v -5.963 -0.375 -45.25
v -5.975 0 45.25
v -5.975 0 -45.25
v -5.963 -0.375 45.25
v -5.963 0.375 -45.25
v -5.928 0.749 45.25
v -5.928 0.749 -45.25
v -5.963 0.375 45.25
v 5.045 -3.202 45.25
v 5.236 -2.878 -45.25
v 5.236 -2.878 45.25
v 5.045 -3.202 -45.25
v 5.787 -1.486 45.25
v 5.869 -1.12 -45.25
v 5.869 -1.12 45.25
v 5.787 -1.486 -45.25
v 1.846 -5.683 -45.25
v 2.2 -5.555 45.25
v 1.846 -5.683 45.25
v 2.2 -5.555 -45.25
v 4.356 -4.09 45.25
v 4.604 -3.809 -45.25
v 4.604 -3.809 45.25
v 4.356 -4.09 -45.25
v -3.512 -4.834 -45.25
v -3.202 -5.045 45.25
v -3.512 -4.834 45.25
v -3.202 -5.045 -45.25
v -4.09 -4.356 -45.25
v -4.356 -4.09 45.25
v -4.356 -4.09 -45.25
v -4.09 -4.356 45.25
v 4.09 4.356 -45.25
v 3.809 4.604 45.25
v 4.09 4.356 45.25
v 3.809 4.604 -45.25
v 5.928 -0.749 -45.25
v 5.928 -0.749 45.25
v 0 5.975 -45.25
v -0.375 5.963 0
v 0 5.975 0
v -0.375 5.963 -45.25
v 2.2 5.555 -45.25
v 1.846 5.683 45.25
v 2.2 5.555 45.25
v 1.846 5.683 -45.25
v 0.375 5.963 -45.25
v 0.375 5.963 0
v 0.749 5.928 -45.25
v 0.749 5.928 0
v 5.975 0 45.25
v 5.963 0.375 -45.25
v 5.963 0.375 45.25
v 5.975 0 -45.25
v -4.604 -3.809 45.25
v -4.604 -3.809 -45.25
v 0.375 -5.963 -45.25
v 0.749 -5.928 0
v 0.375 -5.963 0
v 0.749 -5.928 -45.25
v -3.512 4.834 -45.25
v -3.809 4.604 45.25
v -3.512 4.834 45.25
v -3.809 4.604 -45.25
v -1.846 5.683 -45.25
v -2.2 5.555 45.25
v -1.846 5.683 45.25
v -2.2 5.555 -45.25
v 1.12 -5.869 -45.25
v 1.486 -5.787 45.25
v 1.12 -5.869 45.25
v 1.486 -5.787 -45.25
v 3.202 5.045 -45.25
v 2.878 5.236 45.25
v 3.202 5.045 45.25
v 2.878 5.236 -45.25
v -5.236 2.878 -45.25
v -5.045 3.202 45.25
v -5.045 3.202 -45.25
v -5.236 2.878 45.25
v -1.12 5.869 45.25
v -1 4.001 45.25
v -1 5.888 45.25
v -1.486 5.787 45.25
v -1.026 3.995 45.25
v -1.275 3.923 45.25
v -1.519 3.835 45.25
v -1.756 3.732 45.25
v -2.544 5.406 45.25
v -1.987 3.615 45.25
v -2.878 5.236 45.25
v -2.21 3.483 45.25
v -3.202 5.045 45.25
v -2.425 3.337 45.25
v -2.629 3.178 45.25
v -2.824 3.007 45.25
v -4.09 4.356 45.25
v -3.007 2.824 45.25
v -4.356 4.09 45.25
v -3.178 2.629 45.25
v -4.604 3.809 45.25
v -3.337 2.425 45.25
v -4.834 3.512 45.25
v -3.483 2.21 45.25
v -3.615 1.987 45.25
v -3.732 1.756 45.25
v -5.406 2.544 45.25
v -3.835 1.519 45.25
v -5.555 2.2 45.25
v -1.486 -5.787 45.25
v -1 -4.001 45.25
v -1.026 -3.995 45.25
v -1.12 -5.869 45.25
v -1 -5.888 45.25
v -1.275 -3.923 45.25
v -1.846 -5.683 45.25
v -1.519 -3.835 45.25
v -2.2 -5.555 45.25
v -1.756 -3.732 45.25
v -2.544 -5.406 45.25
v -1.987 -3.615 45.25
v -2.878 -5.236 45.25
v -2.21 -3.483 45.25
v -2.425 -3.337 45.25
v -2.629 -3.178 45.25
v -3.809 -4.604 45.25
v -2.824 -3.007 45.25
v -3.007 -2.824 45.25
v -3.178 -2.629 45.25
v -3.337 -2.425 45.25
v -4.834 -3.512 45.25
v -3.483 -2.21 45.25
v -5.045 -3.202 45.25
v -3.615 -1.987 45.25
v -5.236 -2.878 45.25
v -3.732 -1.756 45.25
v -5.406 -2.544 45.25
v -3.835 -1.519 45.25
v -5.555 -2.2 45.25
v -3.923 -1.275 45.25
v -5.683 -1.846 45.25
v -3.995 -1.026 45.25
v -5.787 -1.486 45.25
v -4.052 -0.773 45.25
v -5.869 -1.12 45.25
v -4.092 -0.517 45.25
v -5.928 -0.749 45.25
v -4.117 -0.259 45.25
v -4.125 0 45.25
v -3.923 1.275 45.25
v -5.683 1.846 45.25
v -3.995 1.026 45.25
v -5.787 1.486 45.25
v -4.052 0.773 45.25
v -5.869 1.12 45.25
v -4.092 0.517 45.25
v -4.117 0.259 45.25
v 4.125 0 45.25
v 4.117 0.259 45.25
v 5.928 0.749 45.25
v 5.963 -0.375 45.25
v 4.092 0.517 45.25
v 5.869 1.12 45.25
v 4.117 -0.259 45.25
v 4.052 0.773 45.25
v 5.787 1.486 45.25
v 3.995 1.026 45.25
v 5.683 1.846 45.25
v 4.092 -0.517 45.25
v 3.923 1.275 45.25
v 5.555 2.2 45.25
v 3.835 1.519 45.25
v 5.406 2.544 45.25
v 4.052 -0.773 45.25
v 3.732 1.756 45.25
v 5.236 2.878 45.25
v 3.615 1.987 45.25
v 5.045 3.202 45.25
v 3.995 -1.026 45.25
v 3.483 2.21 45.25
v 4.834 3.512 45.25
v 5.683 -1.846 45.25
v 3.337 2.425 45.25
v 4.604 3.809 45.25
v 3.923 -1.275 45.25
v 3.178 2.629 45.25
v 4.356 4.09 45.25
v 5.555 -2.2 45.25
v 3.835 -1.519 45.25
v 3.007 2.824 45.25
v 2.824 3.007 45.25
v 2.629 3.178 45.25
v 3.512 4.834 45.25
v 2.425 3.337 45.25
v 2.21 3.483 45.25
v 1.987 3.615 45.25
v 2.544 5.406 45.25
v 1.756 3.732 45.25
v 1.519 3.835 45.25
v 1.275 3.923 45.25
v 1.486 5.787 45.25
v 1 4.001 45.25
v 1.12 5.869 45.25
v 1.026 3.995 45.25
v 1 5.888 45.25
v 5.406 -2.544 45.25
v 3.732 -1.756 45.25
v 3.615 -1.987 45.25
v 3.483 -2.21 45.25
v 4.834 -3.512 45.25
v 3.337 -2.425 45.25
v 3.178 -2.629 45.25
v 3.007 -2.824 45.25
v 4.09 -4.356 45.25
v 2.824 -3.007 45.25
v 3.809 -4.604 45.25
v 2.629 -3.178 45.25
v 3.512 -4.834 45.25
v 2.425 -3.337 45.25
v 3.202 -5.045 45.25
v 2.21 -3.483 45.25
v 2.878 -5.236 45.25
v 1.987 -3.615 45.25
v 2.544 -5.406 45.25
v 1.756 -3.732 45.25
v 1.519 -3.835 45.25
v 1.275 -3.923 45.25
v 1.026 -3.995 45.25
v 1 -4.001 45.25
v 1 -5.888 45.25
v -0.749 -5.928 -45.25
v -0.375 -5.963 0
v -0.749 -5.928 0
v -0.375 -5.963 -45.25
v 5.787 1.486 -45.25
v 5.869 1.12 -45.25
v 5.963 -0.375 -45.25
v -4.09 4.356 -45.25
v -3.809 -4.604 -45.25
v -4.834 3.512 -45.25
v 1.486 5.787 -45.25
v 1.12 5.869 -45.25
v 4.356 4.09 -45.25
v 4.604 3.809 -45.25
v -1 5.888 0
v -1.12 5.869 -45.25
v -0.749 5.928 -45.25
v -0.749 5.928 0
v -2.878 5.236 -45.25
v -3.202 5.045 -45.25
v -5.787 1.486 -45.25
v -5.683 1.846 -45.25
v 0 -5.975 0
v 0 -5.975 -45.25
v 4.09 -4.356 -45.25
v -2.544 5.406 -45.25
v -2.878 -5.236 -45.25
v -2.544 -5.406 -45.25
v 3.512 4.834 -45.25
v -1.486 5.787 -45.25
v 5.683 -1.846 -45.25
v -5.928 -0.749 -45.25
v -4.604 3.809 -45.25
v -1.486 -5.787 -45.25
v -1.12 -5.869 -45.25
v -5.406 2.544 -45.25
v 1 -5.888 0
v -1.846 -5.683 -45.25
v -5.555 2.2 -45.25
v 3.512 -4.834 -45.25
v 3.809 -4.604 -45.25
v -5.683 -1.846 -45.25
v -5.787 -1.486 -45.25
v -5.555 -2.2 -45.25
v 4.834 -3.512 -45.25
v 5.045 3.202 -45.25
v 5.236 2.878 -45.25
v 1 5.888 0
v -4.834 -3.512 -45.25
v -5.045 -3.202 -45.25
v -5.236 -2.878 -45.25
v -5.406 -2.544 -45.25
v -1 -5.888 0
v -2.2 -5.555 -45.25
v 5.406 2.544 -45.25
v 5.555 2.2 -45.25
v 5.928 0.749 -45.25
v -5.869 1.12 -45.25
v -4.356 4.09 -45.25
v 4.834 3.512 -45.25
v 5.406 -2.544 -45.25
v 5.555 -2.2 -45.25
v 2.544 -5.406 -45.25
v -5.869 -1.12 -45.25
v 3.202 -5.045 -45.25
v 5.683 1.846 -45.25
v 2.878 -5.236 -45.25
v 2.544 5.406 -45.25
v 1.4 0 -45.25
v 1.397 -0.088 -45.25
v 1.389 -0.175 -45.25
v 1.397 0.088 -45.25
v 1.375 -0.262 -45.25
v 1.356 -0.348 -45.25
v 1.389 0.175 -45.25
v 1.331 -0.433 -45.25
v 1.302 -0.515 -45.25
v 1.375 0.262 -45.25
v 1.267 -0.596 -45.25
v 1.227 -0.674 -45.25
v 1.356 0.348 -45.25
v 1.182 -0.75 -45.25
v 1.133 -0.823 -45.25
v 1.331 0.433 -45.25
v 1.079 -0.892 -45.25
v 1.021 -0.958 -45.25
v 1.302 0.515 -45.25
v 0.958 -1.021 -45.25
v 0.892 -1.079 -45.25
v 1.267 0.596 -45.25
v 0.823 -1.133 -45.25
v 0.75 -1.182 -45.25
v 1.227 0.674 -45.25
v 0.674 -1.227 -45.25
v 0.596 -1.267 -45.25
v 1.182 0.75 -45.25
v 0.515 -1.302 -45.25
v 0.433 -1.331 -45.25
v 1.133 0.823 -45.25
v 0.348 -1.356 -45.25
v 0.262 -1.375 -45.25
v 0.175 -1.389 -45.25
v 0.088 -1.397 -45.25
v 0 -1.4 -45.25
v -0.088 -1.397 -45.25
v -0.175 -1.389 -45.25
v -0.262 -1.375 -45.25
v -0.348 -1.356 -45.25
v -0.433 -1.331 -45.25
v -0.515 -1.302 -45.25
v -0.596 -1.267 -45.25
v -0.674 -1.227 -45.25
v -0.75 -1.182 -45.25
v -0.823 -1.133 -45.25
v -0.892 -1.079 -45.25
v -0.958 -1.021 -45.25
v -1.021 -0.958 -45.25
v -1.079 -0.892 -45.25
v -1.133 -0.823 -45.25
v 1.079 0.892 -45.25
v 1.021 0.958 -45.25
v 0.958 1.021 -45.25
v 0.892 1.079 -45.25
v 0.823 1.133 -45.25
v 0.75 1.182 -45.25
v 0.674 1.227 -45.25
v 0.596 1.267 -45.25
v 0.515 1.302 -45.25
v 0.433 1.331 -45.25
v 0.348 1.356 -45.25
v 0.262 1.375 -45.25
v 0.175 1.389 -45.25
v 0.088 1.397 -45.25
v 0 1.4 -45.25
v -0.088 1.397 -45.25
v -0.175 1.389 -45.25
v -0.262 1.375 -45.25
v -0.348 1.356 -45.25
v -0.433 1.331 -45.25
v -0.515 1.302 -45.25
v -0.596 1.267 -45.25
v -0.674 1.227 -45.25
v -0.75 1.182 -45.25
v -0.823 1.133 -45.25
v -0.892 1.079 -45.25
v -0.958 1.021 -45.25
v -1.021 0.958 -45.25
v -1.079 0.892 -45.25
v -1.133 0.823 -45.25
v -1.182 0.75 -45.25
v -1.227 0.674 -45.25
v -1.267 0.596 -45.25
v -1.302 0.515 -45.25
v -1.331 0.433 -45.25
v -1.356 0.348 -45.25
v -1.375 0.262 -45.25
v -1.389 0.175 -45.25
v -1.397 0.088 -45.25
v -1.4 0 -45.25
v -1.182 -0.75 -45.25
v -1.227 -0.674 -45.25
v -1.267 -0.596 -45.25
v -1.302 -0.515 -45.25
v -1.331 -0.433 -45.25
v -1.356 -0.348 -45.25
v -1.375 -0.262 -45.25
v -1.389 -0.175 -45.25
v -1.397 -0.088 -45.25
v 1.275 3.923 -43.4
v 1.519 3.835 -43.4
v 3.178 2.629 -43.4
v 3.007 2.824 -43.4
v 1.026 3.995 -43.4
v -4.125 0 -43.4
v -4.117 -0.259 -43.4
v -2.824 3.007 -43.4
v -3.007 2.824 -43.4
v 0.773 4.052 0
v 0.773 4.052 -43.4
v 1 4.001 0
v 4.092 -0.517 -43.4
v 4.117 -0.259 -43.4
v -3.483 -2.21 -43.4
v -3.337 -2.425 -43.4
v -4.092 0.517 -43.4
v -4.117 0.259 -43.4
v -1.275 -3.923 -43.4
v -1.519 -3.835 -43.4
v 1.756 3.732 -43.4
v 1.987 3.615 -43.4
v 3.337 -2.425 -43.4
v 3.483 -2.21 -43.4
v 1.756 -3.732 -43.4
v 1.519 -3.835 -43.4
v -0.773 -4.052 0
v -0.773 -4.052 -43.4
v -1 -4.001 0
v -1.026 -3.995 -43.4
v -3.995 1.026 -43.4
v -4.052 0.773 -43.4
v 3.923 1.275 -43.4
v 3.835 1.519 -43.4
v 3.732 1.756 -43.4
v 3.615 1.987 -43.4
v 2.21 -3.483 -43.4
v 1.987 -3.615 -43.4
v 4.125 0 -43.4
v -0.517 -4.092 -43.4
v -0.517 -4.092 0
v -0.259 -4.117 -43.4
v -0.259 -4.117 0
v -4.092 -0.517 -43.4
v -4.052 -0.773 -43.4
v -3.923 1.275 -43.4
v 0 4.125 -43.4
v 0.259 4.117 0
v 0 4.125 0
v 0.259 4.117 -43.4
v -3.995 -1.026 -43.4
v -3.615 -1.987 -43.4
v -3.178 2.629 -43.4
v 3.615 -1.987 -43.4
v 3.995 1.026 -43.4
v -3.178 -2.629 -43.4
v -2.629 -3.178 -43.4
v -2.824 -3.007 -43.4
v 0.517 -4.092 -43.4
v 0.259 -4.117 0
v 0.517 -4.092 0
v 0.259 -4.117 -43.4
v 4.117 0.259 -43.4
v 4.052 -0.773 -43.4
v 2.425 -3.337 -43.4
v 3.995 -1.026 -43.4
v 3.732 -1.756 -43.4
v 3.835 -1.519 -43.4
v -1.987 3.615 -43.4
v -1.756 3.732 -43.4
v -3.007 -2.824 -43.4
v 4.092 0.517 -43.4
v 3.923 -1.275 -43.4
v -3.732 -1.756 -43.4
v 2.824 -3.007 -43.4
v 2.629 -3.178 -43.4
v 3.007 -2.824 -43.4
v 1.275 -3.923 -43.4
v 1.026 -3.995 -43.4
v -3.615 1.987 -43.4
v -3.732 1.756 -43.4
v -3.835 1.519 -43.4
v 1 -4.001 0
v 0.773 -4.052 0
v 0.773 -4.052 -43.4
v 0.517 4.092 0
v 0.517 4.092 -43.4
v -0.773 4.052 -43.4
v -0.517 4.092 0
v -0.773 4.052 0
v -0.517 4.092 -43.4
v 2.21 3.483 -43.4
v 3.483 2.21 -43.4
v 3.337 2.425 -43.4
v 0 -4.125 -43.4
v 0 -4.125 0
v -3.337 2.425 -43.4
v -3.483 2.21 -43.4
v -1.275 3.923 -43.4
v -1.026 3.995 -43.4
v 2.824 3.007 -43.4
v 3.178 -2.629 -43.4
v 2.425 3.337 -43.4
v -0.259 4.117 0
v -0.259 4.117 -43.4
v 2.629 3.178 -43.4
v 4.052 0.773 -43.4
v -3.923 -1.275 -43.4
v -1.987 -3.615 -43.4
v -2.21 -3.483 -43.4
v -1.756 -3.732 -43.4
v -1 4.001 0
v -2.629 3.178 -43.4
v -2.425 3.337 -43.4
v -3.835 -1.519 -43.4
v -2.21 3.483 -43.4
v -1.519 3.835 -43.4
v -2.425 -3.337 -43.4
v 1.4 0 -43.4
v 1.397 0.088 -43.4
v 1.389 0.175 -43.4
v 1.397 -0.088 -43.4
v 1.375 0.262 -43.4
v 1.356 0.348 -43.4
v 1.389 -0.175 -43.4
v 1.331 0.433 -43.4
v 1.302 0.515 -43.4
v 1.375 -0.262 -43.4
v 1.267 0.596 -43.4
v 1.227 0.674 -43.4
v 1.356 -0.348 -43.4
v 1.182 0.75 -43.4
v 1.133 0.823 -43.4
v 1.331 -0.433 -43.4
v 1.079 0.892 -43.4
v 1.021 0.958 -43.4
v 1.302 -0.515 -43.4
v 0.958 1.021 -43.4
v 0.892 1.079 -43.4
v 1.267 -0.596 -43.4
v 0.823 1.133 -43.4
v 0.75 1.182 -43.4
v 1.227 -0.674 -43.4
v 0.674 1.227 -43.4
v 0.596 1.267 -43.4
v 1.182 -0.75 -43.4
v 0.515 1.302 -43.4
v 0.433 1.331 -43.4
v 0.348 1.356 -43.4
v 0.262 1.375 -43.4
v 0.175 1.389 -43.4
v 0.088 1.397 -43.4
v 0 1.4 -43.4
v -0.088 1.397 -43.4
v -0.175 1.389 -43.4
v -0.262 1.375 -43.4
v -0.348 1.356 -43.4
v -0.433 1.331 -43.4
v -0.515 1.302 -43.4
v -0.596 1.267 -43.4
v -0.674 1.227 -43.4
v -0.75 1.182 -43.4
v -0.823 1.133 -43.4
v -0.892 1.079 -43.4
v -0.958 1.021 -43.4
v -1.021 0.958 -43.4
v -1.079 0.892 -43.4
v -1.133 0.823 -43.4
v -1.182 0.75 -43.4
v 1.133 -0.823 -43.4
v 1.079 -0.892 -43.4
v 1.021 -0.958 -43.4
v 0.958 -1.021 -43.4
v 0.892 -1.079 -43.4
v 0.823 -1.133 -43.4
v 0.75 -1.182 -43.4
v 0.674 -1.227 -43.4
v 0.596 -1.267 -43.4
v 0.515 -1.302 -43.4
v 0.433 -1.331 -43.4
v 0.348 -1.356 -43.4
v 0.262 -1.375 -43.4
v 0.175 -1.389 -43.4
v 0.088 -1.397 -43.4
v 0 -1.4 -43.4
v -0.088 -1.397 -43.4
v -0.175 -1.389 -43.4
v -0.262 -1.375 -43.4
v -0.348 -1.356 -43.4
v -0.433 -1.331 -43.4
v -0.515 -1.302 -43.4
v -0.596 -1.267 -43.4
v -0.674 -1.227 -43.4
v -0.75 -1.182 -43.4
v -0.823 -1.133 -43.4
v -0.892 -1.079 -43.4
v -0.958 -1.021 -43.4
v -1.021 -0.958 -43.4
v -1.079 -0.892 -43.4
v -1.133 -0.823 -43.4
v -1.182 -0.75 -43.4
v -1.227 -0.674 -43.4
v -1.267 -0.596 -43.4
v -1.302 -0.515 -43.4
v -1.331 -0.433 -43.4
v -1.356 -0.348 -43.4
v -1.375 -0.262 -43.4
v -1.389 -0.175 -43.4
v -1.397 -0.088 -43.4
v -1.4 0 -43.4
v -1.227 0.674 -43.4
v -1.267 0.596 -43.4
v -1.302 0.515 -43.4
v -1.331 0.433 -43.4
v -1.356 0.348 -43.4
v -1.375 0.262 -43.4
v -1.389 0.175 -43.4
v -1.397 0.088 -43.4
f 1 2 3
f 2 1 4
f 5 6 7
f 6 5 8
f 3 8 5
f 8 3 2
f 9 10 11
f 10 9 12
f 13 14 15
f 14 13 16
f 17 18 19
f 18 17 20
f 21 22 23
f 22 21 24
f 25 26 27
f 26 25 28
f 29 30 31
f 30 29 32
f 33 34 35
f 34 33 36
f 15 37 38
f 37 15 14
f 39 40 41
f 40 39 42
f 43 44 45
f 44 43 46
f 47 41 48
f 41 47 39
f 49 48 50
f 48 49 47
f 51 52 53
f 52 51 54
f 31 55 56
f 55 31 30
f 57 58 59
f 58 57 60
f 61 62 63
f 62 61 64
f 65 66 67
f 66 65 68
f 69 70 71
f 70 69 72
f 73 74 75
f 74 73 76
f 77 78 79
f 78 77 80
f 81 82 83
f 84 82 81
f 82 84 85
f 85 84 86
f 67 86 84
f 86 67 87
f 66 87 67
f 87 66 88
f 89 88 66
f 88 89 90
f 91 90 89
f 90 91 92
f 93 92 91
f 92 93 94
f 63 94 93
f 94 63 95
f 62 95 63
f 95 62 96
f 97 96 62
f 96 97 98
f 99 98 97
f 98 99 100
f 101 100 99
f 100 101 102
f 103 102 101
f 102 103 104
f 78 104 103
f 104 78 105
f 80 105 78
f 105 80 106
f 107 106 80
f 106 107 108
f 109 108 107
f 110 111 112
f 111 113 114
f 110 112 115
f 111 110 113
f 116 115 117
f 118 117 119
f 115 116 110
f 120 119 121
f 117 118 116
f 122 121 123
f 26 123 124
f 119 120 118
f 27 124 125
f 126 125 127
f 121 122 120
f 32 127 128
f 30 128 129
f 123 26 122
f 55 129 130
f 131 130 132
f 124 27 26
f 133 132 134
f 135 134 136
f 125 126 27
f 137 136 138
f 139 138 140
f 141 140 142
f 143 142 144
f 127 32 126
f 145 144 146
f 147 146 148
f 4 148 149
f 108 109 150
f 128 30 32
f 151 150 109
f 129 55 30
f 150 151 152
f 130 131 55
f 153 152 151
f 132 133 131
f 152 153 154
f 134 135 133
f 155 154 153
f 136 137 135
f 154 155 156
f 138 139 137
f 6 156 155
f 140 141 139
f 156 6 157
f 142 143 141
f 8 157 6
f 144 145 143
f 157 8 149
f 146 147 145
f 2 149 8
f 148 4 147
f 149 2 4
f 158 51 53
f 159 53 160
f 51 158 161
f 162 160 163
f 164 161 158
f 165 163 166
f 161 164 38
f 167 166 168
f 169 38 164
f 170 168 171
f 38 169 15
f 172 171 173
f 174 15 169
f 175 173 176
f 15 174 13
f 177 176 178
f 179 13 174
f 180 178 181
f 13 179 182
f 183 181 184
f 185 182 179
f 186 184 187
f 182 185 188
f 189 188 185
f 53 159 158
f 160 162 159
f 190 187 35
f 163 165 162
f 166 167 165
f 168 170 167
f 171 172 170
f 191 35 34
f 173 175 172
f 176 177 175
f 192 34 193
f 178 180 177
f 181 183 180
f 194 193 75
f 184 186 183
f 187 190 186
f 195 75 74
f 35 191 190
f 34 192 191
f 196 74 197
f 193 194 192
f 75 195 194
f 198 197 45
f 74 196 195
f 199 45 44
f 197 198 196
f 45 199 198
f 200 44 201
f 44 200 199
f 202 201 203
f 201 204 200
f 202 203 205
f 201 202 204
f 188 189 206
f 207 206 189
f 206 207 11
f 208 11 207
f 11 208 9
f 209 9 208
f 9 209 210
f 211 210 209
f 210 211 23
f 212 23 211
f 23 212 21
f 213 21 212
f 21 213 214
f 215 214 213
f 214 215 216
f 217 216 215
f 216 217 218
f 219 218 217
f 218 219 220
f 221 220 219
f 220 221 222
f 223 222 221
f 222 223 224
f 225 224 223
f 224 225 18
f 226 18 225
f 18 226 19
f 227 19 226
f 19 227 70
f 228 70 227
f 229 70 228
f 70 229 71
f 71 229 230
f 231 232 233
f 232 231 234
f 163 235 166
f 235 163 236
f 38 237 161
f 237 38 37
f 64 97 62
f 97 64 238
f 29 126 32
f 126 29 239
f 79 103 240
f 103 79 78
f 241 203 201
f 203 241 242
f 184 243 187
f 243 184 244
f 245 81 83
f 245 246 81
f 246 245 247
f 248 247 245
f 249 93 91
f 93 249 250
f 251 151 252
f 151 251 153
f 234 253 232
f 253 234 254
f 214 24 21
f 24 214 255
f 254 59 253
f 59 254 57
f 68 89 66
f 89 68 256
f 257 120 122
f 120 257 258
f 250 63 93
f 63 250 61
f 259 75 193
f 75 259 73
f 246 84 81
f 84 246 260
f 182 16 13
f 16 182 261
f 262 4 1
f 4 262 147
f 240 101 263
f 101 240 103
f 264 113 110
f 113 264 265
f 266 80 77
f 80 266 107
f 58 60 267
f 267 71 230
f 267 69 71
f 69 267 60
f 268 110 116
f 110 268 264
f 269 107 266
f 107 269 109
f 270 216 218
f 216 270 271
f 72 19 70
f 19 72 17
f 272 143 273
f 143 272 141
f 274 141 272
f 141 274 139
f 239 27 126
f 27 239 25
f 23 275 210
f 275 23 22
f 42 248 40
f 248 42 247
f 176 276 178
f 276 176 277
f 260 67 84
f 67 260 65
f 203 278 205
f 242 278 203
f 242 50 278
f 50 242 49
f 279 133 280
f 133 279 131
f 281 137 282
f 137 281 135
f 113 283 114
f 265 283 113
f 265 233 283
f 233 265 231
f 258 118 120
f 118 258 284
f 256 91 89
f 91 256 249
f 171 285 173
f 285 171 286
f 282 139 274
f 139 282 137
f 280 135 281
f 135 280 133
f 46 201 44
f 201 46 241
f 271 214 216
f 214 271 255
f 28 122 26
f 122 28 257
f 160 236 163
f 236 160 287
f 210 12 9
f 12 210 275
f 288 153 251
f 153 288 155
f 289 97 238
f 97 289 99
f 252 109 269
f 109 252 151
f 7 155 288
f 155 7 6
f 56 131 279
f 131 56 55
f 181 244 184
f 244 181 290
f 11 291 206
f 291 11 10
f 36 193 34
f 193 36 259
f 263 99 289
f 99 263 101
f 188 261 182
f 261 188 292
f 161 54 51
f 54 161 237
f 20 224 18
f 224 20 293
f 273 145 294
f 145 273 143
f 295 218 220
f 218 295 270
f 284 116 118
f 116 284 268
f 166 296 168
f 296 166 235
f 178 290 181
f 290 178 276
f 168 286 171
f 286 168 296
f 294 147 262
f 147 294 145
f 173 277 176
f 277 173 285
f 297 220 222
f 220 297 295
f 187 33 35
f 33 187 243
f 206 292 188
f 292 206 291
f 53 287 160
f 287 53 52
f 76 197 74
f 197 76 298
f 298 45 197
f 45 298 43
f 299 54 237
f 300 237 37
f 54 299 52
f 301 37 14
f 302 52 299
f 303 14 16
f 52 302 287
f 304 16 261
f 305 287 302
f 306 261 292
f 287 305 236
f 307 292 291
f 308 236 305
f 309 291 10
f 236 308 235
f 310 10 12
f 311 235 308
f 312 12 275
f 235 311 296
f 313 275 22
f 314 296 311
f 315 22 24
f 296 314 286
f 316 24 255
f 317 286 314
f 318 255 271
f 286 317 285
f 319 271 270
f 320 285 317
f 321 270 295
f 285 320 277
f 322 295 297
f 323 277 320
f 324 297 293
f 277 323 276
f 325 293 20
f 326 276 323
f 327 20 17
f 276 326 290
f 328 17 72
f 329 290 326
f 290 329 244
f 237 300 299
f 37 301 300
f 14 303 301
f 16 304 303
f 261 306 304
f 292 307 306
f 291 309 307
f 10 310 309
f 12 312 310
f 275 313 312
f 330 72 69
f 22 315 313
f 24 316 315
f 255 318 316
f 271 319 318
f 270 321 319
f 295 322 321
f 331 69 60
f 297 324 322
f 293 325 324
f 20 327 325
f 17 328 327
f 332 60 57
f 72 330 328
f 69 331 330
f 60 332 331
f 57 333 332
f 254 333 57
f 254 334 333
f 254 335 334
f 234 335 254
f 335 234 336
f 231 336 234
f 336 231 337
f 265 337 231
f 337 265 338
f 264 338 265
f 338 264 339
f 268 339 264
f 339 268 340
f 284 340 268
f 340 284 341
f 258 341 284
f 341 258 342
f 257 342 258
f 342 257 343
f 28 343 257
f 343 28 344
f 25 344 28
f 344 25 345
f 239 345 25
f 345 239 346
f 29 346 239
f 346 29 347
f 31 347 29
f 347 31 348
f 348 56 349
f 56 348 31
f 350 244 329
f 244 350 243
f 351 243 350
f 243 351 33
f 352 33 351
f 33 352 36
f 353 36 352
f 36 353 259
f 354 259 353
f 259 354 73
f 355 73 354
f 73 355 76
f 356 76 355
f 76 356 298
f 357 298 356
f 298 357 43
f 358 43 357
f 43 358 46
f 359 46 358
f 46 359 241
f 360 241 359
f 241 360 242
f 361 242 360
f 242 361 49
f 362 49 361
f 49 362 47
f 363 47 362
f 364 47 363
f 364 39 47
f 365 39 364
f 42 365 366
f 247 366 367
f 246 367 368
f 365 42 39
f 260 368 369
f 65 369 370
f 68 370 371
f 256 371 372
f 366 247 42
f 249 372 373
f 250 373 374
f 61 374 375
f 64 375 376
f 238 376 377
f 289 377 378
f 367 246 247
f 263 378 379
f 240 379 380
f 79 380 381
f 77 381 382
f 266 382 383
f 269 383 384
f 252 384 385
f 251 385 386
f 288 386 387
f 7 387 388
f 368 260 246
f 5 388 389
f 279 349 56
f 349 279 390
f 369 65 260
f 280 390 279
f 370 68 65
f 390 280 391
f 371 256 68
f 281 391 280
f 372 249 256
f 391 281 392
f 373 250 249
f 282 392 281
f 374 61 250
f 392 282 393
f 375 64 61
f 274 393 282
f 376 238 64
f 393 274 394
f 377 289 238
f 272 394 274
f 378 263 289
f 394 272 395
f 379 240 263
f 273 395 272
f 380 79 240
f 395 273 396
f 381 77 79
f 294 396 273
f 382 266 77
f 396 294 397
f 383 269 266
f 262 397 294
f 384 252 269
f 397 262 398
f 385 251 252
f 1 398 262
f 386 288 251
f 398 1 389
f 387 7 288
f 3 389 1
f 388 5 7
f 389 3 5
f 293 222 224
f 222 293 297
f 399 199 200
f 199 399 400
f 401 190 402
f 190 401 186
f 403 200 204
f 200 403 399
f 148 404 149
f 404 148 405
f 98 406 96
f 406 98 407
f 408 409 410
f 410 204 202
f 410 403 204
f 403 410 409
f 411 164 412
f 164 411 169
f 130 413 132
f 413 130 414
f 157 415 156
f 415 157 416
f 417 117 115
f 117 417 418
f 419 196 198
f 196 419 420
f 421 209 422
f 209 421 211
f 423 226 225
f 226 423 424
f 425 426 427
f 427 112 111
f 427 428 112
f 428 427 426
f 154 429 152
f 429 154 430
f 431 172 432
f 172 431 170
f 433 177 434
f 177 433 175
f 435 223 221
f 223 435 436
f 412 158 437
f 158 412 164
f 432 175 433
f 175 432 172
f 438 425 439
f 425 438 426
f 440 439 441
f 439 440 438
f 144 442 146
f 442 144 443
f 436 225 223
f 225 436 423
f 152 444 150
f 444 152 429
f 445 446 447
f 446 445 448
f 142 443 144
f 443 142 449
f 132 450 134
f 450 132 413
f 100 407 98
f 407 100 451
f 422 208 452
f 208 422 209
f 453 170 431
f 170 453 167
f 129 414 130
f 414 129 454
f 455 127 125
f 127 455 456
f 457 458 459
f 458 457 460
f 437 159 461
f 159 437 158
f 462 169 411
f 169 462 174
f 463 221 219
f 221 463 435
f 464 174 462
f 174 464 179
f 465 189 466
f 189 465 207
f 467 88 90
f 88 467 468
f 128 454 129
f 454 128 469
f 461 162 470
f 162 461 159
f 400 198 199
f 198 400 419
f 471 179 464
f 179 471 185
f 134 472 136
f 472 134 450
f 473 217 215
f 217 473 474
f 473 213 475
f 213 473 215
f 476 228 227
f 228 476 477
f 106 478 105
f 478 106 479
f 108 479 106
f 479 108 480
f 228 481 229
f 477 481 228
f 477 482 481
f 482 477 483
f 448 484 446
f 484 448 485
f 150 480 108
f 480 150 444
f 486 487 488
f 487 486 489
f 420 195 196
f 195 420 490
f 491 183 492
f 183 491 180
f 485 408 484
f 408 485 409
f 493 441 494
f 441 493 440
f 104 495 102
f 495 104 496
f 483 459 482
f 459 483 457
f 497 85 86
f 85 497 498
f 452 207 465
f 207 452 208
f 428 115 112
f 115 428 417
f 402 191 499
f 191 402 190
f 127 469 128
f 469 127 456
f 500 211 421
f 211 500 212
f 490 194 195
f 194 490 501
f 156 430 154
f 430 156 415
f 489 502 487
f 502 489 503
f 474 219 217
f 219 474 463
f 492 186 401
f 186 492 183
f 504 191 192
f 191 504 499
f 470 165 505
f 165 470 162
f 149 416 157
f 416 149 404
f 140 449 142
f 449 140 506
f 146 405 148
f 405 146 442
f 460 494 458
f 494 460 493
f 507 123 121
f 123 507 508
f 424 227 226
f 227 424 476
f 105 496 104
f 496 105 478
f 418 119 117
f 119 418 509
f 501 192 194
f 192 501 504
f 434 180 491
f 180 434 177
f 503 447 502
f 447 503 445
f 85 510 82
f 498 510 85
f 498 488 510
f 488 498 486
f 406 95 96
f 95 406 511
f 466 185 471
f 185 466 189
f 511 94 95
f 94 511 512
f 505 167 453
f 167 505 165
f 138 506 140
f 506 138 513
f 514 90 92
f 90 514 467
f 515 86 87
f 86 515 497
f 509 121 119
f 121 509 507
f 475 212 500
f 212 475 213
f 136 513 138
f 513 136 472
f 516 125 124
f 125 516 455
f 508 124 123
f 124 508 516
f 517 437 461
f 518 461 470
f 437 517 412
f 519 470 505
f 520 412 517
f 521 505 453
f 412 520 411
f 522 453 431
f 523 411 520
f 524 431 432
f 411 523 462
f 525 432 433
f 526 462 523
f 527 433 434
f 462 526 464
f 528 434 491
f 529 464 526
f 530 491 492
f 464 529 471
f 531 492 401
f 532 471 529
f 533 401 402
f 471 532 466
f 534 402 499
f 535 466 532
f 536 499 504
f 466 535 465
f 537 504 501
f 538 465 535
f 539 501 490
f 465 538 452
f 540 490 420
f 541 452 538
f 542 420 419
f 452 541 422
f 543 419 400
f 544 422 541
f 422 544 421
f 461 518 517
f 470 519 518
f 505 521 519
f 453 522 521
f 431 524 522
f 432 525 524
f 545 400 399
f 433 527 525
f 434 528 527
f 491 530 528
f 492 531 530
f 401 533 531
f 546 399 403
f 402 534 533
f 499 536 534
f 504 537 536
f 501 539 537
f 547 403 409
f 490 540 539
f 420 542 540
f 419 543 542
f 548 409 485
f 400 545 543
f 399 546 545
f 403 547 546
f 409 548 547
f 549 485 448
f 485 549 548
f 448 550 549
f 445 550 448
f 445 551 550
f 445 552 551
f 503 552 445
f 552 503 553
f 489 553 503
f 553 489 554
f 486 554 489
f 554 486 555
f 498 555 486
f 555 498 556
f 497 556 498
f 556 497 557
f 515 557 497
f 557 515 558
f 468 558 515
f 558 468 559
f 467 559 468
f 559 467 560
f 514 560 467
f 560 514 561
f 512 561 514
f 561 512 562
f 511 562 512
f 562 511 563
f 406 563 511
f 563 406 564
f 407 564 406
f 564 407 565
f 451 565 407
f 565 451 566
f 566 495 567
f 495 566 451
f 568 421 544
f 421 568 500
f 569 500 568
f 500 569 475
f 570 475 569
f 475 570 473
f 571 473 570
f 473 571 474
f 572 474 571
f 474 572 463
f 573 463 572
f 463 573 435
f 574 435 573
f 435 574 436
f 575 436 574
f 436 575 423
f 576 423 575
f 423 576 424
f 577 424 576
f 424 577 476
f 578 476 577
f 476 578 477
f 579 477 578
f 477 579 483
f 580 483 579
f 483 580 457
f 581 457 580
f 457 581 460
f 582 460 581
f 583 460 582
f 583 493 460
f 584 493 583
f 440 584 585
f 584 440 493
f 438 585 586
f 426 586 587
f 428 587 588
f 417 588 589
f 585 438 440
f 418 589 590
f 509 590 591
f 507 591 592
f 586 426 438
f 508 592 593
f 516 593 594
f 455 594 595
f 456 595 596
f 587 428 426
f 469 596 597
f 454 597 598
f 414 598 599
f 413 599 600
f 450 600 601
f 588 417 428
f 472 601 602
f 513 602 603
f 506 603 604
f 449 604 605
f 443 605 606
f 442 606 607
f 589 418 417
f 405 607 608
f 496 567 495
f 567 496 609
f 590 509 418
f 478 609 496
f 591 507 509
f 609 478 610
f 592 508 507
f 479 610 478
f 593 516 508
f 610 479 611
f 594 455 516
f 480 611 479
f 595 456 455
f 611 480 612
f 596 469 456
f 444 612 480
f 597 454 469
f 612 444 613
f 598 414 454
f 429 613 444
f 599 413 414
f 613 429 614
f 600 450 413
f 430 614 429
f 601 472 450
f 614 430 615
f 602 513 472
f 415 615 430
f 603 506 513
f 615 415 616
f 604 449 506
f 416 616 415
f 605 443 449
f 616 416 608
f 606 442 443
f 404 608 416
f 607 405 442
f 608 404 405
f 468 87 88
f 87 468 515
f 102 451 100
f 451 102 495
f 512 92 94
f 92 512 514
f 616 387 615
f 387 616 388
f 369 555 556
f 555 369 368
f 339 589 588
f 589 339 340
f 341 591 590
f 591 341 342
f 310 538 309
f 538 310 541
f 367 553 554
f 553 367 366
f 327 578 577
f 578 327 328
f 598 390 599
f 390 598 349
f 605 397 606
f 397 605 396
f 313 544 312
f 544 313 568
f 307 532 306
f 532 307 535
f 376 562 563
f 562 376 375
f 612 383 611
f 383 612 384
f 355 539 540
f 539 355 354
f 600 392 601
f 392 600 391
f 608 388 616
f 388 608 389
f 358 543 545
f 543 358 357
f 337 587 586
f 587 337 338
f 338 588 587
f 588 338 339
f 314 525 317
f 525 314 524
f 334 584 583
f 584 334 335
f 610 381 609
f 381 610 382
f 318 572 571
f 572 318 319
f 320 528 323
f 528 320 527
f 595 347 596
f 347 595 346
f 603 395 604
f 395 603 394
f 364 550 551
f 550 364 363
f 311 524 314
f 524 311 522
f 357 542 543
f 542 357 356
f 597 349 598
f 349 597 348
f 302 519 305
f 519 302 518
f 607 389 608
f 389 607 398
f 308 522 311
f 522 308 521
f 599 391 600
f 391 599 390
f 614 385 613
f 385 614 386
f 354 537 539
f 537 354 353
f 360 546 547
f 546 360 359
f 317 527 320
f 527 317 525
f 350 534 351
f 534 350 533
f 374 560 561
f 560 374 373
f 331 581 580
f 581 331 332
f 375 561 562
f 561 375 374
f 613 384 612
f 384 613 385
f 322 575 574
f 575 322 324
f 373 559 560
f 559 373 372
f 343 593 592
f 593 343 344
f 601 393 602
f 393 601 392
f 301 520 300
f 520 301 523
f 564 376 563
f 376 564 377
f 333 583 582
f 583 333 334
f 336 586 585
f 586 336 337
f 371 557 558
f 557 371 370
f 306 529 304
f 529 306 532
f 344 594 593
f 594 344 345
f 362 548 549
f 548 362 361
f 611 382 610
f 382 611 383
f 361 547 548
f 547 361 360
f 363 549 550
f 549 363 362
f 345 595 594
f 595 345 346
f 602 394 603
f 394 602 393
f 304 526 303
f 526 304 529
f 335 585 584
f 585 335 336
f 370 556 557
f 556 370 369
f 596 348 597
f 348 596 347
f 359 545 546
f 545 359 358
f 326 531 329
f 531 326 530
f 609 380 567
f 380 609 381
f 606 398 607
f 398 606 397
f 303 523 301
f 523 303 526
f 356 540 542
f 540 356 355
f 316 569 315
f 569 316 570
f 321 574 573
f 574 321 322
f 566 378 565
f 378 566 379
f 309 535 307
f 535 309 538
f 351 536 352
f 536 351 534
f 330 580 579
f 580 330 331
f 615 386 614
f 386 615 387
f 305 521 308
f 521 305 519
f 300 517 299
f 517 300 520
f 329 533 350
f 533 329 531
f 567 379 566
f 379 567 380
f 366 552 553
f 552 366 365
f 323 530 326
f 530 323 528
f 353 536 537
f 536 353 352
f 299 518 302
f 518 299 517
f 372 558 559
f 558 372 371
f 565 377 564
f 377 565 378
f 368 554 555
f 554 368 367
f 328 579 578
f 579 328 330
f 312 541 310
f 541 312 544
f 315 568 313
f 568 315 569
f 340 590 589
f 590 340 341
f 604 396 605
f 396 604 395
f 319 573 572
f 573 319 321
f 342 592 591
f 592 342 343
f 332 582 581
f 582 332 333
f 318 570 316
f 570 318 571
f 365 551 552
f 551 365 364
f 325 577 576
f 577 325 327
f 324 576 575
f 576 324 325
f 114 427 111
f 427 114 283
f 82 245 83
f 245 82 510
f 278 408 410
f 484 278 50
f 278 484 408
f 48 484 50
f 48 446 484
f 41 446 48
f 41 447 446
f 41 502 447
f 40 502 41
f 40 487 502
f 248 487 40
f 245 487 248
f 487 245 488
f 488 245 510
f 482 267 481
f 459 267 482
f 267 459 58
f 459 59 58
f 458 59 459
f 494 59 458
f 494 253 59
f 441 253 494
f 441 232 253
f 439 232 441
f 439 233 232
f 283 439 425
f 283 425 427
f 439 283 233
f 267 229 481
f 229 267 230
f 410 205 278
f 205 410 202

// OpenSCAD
// file: ../../../shared_helper.scad
// Shared Helper variables and modules

// Variables
quality_value = 100;
$fn = quality_value;

// Screw Holes
m2_hole_diameter = 1.85; // 1.95;
m2_loose_diameter = 2.50;
m2_counter_sink_diameter = 3.80;
m2_counter_sink_length = 2.00;
m2_hole_offset = m2_hole_diameter / 2.0;
m2_hole_height = 100.00;
m2_nut_outer_width = 3.90;
m2_nut_outer_height = 4.40;
m2_nut_outer_depth = 1.50;
// M2_Counter_Sink_Depth

m3_hole_diameter = 2.9; // 2.8
m3_hole_offset = m3_hole_diameter / 2.0;
m3_hole_height = 100.00;
m3_head_diameter = 6.2;
m3_head_depth = 3.0; // 2.5??, 3.0

m4_hole_diameter = 3.85; // 3.90
m4_hole_offset = m4_hole_diameter / 2.0;
m4_hole_height = 100.00;
m4_head_diameter = 7.55;
m4_head_depth = 3.0; // 2.5??, 3.0

// Tolerances
hole_tight_tolerance = 0.05;
hole_loose_tolerance = 0.20;

// Springs
spring_diameter = 5.45;
spring_length = 35.00;

// Nails
brass_nail_diameter = 2.4; // 2.00; // 1.95 at the beginning it tapers
brass_nail_length = 29.54;
brass_nail_head_diameter = 3.20; // 3.00; // oval 2.84 - 3.1 mm
brass_nail_head_depth = 1.80; //1.00; // 1.80; // 2.00;

// General Variables
v_wheel_hole_diameter = 5.20;
v_wheel_offset = (v_wheel_hole_diameter / 2.0) + 2.0;

// Hot-End Holes
stand_off_hole_diameter = m3_hole_diameter;
stand_off_width_distance = 11.60 + stand_off_hole_diameter;

// Magnets
// Small Magnet (Neo)
small_magnet_height = 2.00; // ±2.00 1.97
small_magnet_diameter = 3.00; // ±3.00 // 2.98

// Medium Magnet (Neo)
medium_magnet_height = 2.96; // ±3.00
medium_magnet_diameter = 5.00;

// Large Magnet (ferrite)
large_magnet_height = 2.98; // ±3.00
large_magnet_diameter = 9.79; // ±10.00

// Switches
// D2F Switch
d2f_length = 12.88; // ±12.70
d2f_width = 5.84; // ±5.70
d2f_depth = 6.20; // ±7.00 (5 + 2) ... ±6.50
d2f_pins = 9.00 - 6.50;
d2f_plunger_length = 2.64;
d2f_plunger_width = 0.97; // ±1.00
d2f_plunger_depth = 0.39; // ±0.50
d2f_mount_hole_position = 2.10;
d2f_hole_position_from_centre = 2.85;
d2f_pin_pre_travel = 0.50;
d2f_mount_hole_shift = 4.40 + m2_hole_offset + m2_hole_offset;
d2f_switch_base = 0.2 + 0.7 + 1.50 + 0.55 - 1.0;
d2f_switch_hole_hight = 22.00;
d2f_extra_tolerance_for_switch_holes = 0.12;

// 10t85 Switch
10t85_length = 20.04; // ±19.90
10t85_width = 6.34; // ±6.40
10t85_depth = 10.64; // ±10.70
10t85_plunger_length = 3.28; // ±4.00
10t85_plunger_width = 1.96;
10t85_plunger_depth = 1.30;

// Creality Endstop Board, 2208 V2.0
// creality_endstop_hole_diameter = m3_hole_diameter + hole_loose_tolerance; // Hole is M3 sized but meant for a loose M2
creality_endstop_hole_diameter = m2_hole_diameter + hole_tight_tolerance;
creality_endstop_hole_offset = 15.00;
creality_endstop_board_height = 20.30;
creality_endstop_plug_height_extension = 2.00;
creality_endstop_board_width = 20.20;
creality_endstop_board_thickness = 1.30;
creality_endstop_board_pins_thickness = 3.20 - creality_endstop_board_thickness;
creality_endstop_board_switch_thickness = 8.50 - creality_endstop_board_thickness;
creality_endstop_board_back_space = 2.00; // Taken from the rail mount bracket
creality_endstop_board_back_height = 14.90;
creality_endstop_board_back_width = 16.80;
creality_endstop_back_thickness = 3.30;
creality_endstop_back_hole_wall_spacing = 1.50; //3.00;

// Small Tactile Switch
small_tactile_switch_length = 6.21;
small_tactile_switch_width = 6.17;
small_tactile_switch_depth = 3.18;
small_tactile_switch_plunger_diameter = 3.40;
small_tactile_switch_plunger_depth = 1.40;

// Large Tactile Switch
large_tactile_switch_length = 12.03;
large_tactile_switch_width = 11.95;
large_tactile_switch_depth = 3.12;
large_tactile_switch_plunger_length = 3.75;
large_tactile_switch_plunger_width = 3.70;
large_tactile_switch_plunger_depth = 3.94;

// Button
button_topper_top_diameter = 11.65;
button_topper_bottom_diameter = 12.96;
button_topper_depth = 5.64;
button_topper_bottom_depth = 4.38;

// Belts
// GT2

// Modules
// Creality Mounting Holes
module CrealityCounterSunkHotEndMountingHoles(total_casing_depth, casing_top_extension) {
  // Mounting holes with countersinking - horizontal, through-holes, properly positioned
  cylinder(d=m3_hole_diameter, h=total_casing_depth + 2.00, center=true);
  cylinder(d=m3_hole_diameter, h=total_casing_depth + 2.00, center=true);

  translate([stand_off_width_distance, 0, 0]) {
    cylinder(d=m3_hole_diameter, h=total_casing_depth + 2.00, center=true);
    cylinder(d=m3_head_diameter + hole_loose_tolerance, h=4 + m3_head_depth + 6 + 1.8 + casing_top_extension);
  }
}

module CrealityHotEndMountingHoles(total_casing_depth) {
  cylinder(d=m3_hole_diameter, h=total_casing_depth + 2.00, center=true);

  translate([stand_off_width_distance, 0, 0]) {
    cylinder(d=m3_hole_diameter, h=total_casing_depth + 2.00, center=true);
  }
}

module CrealityEndstopMountHoles(height, include_back_nut_cutout) {
  cylinder(d=creality_endstop_hole_diameter, h=height, center=true);

  translate([creality_endstop_hole_offset, 0, 0]) {
    cylinder(d=creality_endstop_hole_diameter, h=height, center=true);
  }

  if (include_back_nut_cutout) {
    back_depth = m2_nut_outer_depth;

    translate([-2.0, -2.0, 0]) {
      cube([m2_nut_outer_width, m2_nut_outer_height, back_depth]);

      translate([creality_endstop_hole_offset, 0, 0]) {
        cube([m2_nut_outer_width, m2_nut_outer_height, back_depth]);
      }
    }
  }
}

module CrealityEndstopBackSpace(base_cutout_extension) {
  // Smaller gap between screw holes
  translate([creality_endstop_hole_diameter + creality_endstop_back_hole_wall_spacing, 0.0, 0.0]) {
    cube([creality_endstop_board_back_width - 2 * (creality_endstop_hole_diameter + creality_endstop_back_hole_wall_spacing), base_cutout_extension, creality_endstop_back_thickness + 1.0]);
  }

  // Top gap part
  translate([0.0, base_cutout_extension, 0]) {
    cube([creality_endstop_board_back_width, (creality_endstop_board_back_height + base_cutout_extension), creality_endstop_back_thickness + 1.0]);
  }
}

// D2F Switch Mounting
module D2F_Switch_Space() { // Should be used as a negative / difference space
  // D2F Switch Space
  // switch_base = 0.2 + 0.7 + 1.50 + 0.55;
  // switch_base = 0.2 + 0.7 + 1.50 + 0.55 - 1.0;
  switch_base = d2f_switch_base;

  // cube([d2f_depth, d2f_width + 1.05 + 0.75 - 0.95, d2f_length + casing_top_edge_buffer]); // 1.05
  cube([d2f_length, (d2f_width + 2.00) + d2f_pins, d2f_depth]);
}

module D2F_Switch_Mount_Holes() {
  rotate([0, 0, 90]) {
    translate([0.0, d2f_hole_position_from_centre, 0.0]) {
      cylinder(d=m2_hole_diameter + hole_tight_tolerance + (d2f_extra_tolerance_for_switch_holes * 3), h=d2f_switch_hole_hight);
    }

    translate([0.0, -(d2f_hole_position_from_centre + m2_hole_offset), 0.0]) {
      cylinder(d=m2_hole_diameter + hole_tight_tolerance + (d2f_extra_tolerance_for_switch_holes * 3), h=d2f_switch_hole_hight);
    }
  }
}
// main file
// 8mm to 12mm Rod Sleeve Adapter

// This sleeve converts an 8mm linear stainless rod to 12mm mounting holes
// Uses shared_helper.scad for tolerances and quality settings

include <../../../shared_helper.scad>;

revision = 1.0;

// Rod dimensions
inner_rod_diameter = 8.0;
outer_sleeve_diameter = 12.0;
sleeve_length = 25.5 + 65.00; //30.0;  // Adjust as needed // +1.5

// Tolerances
// inner_tolerance = (2 * hole_tight_tolerance) + hole_loose_tolerance;    // Tight perfect fit for the 8mm rod
inner_tolerance = hole_tight_tolerance + hole_loose_tolerance;    // Tight fit for the 8mm rod
outer_tolerance = hole_tight_tolerance;  // Slightly looser fit for the 12mm mounting holes

// Gap parameters for installation
gap_width = 2.0;  // Width of the gap to allow squeezing

// Create the sleeve
rotate([0, 180, 0]) {
  difference() {
    // Outer cylinder
    cylinder(d=outer_sleeve_diameter - outer_tolerance, h=sleeve_length, center=true);

    // Inner hole for 8mm rod
    rotate([0, 0, 180]) {
      translate([0, 0, -sleeve_length + 20 + 12 + 0.4 + 12.5 - 0.5 -1.0])
      cylinder(d=inner_rod_diameter + inner_tolerance, h=sleeve_length);
    }

    // Small hole to push rod out
    cylinder(d=m3_hole_diameter - 0.1, h=sleeve_length + 1.0, center=true);

    // Gap to allow squeezing for installation
    translate([0, 0, -sleeve_length/2 - 0.5])
    cube([gap_width, outer_sleeve_diameter + 1, sleeve_length + 1], center=true);
  }
}
